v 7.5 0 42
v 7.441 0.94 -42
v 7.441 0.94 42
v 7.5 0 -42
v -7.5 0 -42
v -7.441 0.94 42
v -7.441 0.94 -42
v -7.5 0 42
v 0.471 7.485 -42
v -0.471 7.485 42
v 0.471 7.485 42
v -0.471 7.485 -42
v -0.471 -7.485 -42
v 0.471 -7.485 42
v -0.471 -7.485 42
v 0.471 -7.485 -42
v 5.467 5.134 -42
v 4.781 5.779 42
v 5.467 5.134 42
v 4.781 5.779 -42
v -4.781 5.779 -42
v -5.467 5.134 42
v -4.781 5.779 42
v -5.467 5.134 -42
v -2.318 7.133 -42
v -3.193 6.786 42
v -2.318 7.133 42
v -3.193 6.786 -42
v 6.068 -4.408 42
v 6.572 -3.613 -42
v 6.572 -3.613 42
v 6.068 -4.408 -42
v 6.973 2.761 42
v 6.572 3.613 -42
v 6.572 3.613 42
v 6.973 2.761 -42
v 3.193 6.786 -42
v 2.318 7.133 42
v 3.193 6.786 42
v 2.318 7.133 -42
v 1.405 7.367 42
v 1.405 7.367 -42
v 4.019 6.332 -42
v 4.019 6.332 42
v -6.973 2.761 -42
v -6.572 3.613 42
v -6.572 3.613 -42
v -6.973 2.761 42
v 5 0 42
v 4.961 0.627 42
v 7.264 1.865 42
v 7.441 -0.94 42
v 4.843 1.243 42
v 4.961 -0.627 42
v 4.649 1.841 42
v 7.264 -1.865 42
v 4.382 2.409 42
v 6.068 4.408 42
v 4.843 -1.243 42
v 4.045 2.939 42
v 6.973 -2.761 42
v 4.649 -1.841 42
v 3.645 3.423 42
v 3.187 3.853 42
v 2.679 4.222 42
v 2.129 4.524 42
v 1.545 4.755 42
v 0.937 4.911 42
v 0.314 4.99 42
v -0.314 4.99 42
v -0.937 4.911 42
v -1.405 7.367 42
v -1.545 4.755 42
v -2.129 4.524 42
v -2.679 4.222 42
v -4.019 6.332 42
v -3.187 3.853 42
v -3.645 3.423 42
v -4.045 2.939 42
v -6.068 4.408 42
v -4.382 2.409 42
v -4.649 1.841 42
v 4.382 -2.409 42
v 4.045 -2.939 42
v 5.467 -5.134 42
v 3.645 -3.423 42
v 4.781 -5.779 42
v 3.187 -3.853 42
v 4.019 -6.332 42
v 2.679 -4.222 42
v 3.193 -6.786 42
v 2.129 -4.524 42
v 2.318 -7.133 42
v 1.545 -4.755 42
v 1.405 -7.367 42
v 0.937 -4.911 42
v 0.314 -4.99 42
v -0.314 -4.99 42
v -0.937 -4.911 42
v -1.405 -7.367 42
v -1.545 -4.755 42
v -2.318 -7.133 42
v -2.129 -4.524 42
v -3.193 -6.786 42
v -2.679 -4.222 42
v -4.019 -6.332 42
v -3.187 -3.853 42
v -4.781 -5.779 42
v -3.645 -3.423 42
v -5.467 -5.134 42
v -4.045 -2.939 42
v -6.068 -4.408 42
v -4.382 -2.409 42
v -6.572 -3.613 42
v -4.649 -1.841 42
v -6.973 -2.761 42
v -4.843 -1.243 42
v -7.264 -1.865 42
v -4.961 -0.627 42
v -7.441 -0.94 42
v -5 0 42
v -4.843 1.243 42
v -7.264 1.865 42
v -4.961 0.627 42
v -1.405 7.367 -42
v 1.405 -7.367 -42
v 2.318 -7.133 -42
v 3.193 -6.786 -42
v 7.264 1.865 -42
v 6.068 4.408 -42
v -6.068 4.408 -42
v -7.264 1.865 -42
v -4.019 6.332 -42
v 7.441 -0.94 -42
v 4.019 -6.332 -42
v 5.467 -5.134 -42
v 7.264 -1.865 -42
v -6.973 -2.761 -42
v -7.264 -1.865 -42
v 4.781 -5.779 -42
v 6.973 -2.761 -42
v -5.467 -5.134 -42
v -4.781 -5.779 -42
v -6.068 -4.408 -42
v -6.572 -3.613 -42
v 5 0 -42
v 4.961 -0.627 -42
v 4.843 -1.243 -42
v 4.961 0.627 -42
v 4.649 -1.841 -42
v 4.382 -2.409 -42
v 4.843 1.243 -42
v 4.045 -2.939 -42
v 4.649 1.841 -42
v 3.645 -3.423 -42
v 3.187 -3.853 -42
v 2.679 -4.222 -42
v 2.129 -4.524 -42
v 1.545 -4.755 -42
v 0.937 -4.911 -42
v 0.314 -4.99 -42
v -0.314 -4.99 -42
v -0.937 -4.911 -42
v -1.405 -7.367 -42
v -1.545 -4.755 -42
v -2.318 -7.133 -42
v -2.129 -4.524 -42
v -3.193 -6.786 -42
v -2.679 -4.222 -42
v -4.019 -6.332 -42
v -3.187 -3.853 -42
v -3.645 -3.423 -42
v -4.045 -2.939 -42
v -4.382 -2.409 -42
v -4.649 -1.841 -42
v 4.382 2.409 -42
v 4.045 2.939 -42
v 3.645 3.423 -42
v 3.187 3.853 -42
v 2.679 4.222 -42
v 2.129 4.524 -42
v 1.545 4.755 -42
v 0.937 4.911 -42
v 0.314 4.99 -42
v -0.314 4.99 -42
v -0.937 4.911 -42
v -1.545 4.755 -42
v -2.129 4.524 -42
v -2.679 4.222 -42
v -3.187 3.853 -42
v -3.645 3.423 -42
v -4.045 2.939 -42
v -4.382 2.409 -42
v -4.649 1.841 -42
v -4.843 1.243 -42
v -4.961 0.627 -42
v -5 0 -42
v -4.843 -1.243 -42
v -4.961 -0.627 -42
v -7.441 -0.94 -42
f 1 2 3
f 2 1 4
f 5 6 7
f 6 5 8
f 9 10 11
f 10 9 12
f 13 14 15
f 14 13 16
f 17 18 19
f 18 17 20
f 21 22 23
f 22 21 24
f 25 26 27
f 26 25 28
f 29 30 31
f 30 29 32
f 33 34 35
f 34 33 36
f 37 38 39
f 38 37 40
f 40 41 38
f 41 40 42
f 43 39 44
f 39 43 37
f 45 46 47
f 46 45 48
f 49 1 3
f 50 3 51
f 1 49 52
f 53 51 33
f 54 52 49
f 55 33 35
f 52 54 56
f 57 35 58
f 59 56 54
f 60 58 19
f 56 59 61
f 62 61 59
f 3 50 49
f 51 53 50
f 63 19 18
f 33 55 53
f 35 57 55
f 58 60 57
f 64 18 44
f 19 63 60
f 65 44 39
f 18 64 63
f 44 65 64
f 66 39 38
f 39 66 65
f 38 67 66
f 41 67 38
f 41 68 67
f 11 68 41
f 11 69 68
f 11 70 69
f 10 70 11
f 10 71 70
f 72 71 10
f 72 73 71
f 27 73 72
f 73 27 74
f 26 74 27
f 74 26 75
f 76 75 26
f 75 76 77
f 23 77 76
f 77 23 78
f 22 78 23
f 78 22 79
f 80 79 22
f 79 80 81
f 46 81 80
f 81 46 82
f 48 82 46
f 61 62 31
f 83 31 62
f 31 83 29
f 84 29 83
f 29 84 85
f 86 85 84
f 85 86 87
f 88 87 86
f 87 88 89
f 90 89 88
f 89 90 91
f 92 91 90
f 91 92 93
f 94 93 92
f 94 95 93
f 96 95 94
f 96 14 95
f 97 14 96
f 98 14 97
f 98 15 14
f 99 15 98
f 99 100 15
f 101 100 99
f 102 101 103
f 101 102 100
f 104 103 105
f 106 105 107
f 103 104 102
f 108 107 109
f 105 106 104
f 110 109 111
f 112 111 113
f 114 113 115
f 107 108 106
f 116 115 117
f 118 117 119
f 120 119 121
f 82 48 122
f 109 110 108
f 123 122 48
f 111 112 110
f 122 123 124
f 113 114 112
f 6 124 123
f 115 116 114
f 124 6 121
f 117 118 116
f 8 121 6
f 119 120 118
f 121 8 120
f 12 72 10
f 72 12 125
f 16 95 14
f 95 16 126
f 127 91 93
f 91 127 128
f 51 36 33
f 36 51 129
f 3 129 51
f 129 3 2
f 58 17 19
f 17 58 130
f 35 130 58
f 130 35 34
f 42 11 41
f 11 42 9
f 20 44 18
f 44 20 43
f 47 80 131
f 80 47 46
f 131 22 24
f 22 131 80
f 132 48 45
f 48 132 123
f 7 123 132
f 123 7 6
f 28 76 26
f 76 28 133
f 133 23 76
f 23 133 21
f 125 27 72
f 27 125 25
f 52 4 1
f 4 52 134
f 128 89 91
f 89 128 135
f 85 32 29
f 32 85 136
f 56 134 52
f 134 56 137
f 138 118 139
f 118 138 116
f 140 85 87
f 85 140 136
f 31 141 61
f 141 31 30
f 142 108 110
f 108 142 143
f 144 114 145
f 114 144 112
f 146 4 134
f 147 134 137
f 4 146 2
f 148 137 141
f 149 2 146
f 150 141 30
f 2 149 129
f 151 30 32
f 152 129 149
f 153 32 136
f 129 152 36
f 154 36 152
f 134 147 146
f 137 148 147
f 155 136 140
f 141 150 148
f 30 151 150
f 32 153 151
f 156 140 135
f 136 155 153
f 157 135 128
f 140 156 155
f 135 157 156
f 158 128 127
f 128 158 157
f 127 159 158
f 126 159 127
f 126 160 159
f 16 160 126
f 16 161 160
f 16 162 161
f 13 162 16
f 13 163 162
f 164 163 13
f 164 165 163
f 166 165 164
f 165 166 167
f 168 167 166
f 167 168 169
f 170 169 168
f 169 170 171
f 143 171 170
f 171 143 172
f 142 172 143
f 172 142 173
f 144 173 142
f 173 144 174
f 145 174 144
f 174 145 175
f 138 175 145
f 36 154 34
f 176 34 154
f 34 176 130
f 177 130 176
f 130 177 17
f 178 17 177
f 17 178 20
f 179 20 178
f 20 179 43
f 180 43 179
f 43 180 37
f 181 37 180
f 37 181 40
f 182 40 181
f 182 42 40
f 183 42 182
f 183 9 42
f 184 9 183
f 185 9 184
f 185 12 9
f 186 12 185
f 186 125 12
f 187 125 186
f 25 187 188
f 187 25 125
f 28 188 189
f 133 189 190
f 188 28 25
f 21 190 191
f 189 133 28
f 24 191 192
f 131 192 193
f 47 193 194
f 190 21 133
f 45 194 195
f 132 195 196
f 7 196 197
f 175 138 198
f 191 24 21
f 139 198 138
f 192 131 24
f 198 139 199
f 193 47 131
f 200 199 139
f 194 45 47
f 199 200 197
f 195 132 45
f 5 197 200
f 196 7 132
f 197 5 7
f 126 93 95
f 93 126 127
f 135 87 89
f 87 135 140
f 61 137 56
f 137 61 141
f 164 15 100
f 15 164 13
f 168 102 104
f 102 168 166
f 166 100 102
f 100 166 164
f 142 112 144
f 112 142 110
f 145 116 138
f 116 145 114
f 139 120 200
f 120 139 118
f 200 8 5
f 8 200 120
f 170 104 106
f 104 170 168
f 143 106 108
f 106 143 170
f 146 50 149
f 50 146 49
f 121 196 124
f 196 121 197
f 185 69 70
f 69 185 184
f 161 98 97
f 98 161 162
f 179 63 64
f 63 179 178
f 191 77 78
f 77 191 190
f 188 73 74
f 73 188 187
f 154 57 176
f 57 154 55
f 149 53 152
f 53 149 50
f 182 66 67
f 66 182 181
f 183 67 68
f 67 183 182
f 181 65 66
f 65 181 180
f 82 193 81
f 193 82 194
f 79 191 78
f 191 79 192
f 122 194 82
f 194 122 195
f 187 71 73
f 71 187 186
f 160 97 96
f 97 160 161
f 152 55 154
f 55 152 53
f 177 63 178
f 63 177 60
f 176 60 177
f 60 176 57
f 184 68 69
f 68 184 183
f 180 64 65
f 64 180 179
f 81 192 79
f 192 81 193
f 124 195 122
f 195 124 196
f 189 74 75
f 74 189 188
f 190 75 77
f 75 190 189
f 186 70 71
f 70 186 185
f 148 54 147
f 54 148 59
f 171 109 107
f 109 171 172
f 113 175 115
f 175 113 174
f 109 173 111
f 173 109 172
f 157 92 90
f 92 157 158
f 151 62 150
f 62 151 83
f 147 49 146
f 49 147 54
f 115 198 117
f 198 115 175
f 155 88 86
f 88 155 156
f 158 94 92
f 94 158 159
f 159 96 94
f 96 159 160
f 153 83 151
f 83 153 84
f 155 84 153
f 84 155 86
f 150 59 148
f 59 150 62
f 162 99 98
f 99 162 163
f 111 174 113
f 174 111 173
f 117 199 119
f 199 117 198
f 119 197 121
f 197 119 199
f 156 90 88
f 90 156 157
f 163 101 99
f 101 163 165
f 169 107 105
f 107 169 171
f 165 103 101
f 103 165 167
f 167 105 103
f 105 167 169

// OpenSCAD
$fn = 50;


difference() {
	union() {
		translate(v = [0, 0, -42.0000000000]) {
			cylinder(h = 84, r = 7.5000000000);
		}
	}
	union() {
		translate(v = [0, 0, -100.0000000000]) {
			cylinder(h = 200, r = 5);
		}
	}
}
